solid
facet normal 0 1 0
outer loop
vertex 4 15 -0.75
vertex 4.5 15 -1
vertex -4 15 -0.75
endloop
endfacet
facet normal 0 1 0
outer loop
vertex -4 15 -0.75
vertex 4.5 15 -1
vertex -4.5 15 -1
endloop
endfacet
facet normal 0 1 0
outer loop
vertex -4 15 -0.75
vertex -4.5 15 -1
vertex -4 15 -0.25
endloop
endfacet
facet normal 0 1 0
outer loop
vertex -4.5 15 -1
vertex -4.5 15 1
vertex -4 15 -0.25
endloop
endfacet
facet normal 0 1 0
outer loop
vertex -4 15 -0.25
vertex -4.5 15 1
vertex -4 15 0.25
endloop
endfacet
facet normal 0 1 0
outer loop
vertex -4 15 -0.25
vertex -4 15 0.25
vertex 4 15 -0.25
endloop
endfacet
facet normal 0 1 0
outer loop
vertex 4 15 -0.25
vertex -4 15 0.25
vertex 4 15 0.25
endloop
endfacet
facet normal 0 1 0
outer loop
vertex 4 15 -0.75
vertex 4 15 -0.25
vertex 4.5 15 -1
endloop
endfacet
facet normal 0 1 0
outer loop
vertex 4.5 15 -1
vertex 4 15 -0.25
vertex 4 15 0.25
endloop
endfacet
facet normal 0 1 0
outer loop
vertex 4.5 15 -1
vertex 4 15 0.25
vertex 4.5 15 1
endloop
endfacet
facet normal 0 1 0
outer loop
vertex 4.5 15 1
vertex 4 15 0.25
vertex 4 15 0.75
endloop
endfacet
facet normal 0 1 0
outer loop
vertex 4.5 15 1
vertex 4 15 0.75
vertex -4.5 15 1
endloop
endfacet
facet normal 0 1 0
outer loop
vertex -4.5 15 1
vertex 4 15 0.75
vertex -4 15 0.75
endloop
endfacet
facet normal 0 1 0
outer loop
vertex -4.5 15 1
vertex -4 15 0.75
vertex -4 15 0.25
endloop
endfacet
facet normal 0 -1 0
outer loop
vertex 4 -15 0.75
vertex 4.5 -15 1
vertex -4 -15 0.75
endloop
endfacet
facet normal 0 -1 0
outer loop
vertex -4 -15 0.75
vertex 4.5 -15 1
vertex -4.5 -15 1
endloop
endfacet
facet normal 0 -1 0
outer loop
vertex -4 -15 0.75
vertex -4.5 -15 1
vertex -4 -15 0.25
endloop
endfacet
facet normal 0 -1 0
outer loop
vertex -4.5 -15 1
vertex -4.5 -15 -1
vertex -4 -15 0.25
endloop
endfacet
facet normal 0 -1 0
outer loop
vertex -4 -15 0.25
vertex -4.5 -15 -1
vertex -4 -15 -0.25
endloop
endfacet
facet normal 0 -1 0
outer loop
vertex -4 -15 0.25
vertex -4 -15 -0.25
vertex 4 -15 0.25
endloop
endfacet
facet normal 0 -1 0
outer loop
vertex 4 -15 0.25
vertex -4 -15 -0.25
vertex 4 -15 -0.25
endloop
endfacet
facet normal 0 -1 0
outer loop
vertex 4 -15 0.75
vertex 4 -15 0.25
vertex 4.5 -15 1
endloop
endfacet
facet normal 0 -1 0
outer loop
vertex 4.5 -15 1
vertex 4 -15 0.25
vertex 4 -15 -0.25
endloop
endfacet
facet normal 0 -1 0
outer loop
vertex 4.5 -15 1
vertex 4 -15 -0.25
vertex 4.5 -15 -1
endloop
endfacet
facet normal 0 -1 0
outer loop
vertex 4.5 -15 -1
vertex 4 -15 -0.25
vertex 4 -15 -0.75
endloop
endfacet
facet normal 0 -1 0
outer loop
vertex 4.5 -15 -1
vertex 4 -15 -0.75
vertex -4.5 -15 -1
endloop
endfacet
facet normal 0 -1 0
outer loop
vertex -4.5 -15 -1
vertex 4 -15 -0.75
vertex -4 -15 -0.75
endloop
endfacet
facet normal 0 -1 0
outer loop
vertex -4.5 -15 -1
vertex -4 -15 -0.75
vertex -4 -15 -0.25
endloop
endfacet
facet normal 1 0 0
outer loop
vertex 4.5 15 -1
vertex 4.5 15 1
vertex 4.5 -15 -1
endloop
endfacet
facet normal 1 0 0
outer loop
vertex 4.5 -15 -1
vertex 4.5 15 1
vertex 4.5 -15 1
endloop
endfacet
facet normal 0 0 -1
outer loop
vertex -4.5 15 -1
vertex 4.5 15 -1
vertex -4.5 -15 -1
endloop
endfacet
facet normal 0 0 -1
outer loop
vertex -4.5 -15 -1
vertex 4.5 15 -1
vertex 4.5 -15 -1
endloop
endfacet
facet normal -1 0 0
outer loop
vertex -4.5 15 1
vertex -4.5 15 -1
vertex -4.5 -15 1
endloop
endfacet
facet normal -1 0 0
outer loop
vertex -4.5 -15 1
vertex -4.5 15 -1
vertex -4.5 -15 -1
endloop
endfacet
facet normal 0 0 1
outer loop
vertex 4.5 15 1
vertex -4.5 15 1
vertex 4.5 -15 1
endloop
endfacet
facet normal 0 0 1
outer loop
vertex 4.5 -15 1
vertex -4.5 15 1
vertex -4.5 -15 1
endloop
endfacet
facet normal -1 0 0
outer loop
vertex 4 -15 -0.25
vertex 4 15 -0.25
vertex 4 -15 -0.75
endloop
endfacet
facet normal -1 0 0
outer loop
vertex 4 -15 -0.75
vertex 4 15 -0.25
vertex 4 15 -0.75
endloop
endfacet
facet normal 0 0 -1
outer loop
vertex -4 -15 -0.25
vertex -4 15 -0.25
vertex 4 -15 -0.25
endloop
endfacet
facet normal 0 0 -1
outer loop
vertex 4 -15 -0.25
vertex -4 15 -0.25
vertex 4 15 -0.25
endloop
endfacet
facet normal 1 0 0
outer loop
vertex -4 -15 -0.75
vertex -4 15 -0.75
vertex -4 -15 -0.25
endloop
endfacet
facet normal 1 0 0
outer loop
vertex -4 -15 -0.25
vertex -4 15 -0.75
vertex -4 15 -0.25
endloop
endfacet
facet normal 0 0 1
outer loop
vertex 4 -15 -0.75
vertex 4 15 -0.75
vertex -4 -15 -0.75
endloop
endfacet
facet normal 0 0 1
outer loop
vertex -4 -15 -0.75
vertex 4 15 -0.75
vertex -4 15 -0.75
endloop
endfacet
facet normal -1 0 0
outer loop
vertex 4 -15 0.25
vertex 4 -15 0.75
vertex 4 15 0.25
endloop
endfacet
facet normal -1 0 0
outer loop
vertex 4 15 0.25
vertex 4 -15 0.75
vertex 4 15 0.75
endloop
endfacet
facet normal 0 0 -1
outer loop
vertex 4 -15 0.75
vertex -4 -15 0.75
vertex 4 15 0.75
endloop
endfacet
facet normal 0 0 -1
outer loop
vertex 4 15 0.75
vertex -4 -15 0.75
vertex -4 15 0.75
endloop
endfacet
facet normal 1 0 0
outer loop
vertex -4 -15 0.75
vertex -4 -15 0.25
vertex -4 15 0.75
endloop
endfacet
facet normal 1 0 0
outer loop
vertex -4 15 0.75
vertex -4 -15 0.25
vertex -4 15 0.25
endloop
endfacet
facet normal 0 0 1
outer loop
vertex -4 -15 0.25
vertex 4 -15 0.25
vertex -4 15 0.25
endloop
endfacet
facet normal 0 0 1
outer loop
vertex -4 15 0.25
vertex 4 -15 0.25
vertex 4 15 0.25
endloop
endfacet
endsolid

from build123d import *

# Parameters (mm, degrees)
SKETCH1_W           = 9
SKETCH1_H           = 2
BOSS_EXTRUDE1_DEPTH = 15
CUT_EXTRUDE1_START  = -31
SKETCH2_W           = 8
SKETCH2_H           = 0.5
CUT_EXTRUDE1_DEPTH  = 32


with BuildPart() as part:
    # Sketch1 → Boss-Extrude1 (new body, symmetric)
    with BuildSketch(Plane(origin=(0, 0, 0), x_dir=(1, 0, 0), z_dir=(0, 1, 0))):
        Rectangle(SKETCH1_W, SKETCH1_H)
    extrude(amount=BOSS_EXTRUDE1_DEPTH, both=True)

    # Sketch2 → Cut-Extrude1 (cut)
    with BuildSketch(Plane(origin=(0, 15, 0), x_dir=(1, 0, 0), z_dir=(0, 1, 0)).offset(CUT_EXTRUDE1_START)):
        with Locations((0, 0.5)):
            Rectangle(SKETCH2_W, SKETCH2_H)
    cut_extrude1 = extrude(amount=CUT_EXTRUDE1_DEPTH, mode=Mode.SUBTRACT)

    # Mirror1: Cut-Extrude1 across plane
    add(cut_extrude1.mirror(Plane.XY), mode=Mode.SUBTRACT)


solid = part.part
